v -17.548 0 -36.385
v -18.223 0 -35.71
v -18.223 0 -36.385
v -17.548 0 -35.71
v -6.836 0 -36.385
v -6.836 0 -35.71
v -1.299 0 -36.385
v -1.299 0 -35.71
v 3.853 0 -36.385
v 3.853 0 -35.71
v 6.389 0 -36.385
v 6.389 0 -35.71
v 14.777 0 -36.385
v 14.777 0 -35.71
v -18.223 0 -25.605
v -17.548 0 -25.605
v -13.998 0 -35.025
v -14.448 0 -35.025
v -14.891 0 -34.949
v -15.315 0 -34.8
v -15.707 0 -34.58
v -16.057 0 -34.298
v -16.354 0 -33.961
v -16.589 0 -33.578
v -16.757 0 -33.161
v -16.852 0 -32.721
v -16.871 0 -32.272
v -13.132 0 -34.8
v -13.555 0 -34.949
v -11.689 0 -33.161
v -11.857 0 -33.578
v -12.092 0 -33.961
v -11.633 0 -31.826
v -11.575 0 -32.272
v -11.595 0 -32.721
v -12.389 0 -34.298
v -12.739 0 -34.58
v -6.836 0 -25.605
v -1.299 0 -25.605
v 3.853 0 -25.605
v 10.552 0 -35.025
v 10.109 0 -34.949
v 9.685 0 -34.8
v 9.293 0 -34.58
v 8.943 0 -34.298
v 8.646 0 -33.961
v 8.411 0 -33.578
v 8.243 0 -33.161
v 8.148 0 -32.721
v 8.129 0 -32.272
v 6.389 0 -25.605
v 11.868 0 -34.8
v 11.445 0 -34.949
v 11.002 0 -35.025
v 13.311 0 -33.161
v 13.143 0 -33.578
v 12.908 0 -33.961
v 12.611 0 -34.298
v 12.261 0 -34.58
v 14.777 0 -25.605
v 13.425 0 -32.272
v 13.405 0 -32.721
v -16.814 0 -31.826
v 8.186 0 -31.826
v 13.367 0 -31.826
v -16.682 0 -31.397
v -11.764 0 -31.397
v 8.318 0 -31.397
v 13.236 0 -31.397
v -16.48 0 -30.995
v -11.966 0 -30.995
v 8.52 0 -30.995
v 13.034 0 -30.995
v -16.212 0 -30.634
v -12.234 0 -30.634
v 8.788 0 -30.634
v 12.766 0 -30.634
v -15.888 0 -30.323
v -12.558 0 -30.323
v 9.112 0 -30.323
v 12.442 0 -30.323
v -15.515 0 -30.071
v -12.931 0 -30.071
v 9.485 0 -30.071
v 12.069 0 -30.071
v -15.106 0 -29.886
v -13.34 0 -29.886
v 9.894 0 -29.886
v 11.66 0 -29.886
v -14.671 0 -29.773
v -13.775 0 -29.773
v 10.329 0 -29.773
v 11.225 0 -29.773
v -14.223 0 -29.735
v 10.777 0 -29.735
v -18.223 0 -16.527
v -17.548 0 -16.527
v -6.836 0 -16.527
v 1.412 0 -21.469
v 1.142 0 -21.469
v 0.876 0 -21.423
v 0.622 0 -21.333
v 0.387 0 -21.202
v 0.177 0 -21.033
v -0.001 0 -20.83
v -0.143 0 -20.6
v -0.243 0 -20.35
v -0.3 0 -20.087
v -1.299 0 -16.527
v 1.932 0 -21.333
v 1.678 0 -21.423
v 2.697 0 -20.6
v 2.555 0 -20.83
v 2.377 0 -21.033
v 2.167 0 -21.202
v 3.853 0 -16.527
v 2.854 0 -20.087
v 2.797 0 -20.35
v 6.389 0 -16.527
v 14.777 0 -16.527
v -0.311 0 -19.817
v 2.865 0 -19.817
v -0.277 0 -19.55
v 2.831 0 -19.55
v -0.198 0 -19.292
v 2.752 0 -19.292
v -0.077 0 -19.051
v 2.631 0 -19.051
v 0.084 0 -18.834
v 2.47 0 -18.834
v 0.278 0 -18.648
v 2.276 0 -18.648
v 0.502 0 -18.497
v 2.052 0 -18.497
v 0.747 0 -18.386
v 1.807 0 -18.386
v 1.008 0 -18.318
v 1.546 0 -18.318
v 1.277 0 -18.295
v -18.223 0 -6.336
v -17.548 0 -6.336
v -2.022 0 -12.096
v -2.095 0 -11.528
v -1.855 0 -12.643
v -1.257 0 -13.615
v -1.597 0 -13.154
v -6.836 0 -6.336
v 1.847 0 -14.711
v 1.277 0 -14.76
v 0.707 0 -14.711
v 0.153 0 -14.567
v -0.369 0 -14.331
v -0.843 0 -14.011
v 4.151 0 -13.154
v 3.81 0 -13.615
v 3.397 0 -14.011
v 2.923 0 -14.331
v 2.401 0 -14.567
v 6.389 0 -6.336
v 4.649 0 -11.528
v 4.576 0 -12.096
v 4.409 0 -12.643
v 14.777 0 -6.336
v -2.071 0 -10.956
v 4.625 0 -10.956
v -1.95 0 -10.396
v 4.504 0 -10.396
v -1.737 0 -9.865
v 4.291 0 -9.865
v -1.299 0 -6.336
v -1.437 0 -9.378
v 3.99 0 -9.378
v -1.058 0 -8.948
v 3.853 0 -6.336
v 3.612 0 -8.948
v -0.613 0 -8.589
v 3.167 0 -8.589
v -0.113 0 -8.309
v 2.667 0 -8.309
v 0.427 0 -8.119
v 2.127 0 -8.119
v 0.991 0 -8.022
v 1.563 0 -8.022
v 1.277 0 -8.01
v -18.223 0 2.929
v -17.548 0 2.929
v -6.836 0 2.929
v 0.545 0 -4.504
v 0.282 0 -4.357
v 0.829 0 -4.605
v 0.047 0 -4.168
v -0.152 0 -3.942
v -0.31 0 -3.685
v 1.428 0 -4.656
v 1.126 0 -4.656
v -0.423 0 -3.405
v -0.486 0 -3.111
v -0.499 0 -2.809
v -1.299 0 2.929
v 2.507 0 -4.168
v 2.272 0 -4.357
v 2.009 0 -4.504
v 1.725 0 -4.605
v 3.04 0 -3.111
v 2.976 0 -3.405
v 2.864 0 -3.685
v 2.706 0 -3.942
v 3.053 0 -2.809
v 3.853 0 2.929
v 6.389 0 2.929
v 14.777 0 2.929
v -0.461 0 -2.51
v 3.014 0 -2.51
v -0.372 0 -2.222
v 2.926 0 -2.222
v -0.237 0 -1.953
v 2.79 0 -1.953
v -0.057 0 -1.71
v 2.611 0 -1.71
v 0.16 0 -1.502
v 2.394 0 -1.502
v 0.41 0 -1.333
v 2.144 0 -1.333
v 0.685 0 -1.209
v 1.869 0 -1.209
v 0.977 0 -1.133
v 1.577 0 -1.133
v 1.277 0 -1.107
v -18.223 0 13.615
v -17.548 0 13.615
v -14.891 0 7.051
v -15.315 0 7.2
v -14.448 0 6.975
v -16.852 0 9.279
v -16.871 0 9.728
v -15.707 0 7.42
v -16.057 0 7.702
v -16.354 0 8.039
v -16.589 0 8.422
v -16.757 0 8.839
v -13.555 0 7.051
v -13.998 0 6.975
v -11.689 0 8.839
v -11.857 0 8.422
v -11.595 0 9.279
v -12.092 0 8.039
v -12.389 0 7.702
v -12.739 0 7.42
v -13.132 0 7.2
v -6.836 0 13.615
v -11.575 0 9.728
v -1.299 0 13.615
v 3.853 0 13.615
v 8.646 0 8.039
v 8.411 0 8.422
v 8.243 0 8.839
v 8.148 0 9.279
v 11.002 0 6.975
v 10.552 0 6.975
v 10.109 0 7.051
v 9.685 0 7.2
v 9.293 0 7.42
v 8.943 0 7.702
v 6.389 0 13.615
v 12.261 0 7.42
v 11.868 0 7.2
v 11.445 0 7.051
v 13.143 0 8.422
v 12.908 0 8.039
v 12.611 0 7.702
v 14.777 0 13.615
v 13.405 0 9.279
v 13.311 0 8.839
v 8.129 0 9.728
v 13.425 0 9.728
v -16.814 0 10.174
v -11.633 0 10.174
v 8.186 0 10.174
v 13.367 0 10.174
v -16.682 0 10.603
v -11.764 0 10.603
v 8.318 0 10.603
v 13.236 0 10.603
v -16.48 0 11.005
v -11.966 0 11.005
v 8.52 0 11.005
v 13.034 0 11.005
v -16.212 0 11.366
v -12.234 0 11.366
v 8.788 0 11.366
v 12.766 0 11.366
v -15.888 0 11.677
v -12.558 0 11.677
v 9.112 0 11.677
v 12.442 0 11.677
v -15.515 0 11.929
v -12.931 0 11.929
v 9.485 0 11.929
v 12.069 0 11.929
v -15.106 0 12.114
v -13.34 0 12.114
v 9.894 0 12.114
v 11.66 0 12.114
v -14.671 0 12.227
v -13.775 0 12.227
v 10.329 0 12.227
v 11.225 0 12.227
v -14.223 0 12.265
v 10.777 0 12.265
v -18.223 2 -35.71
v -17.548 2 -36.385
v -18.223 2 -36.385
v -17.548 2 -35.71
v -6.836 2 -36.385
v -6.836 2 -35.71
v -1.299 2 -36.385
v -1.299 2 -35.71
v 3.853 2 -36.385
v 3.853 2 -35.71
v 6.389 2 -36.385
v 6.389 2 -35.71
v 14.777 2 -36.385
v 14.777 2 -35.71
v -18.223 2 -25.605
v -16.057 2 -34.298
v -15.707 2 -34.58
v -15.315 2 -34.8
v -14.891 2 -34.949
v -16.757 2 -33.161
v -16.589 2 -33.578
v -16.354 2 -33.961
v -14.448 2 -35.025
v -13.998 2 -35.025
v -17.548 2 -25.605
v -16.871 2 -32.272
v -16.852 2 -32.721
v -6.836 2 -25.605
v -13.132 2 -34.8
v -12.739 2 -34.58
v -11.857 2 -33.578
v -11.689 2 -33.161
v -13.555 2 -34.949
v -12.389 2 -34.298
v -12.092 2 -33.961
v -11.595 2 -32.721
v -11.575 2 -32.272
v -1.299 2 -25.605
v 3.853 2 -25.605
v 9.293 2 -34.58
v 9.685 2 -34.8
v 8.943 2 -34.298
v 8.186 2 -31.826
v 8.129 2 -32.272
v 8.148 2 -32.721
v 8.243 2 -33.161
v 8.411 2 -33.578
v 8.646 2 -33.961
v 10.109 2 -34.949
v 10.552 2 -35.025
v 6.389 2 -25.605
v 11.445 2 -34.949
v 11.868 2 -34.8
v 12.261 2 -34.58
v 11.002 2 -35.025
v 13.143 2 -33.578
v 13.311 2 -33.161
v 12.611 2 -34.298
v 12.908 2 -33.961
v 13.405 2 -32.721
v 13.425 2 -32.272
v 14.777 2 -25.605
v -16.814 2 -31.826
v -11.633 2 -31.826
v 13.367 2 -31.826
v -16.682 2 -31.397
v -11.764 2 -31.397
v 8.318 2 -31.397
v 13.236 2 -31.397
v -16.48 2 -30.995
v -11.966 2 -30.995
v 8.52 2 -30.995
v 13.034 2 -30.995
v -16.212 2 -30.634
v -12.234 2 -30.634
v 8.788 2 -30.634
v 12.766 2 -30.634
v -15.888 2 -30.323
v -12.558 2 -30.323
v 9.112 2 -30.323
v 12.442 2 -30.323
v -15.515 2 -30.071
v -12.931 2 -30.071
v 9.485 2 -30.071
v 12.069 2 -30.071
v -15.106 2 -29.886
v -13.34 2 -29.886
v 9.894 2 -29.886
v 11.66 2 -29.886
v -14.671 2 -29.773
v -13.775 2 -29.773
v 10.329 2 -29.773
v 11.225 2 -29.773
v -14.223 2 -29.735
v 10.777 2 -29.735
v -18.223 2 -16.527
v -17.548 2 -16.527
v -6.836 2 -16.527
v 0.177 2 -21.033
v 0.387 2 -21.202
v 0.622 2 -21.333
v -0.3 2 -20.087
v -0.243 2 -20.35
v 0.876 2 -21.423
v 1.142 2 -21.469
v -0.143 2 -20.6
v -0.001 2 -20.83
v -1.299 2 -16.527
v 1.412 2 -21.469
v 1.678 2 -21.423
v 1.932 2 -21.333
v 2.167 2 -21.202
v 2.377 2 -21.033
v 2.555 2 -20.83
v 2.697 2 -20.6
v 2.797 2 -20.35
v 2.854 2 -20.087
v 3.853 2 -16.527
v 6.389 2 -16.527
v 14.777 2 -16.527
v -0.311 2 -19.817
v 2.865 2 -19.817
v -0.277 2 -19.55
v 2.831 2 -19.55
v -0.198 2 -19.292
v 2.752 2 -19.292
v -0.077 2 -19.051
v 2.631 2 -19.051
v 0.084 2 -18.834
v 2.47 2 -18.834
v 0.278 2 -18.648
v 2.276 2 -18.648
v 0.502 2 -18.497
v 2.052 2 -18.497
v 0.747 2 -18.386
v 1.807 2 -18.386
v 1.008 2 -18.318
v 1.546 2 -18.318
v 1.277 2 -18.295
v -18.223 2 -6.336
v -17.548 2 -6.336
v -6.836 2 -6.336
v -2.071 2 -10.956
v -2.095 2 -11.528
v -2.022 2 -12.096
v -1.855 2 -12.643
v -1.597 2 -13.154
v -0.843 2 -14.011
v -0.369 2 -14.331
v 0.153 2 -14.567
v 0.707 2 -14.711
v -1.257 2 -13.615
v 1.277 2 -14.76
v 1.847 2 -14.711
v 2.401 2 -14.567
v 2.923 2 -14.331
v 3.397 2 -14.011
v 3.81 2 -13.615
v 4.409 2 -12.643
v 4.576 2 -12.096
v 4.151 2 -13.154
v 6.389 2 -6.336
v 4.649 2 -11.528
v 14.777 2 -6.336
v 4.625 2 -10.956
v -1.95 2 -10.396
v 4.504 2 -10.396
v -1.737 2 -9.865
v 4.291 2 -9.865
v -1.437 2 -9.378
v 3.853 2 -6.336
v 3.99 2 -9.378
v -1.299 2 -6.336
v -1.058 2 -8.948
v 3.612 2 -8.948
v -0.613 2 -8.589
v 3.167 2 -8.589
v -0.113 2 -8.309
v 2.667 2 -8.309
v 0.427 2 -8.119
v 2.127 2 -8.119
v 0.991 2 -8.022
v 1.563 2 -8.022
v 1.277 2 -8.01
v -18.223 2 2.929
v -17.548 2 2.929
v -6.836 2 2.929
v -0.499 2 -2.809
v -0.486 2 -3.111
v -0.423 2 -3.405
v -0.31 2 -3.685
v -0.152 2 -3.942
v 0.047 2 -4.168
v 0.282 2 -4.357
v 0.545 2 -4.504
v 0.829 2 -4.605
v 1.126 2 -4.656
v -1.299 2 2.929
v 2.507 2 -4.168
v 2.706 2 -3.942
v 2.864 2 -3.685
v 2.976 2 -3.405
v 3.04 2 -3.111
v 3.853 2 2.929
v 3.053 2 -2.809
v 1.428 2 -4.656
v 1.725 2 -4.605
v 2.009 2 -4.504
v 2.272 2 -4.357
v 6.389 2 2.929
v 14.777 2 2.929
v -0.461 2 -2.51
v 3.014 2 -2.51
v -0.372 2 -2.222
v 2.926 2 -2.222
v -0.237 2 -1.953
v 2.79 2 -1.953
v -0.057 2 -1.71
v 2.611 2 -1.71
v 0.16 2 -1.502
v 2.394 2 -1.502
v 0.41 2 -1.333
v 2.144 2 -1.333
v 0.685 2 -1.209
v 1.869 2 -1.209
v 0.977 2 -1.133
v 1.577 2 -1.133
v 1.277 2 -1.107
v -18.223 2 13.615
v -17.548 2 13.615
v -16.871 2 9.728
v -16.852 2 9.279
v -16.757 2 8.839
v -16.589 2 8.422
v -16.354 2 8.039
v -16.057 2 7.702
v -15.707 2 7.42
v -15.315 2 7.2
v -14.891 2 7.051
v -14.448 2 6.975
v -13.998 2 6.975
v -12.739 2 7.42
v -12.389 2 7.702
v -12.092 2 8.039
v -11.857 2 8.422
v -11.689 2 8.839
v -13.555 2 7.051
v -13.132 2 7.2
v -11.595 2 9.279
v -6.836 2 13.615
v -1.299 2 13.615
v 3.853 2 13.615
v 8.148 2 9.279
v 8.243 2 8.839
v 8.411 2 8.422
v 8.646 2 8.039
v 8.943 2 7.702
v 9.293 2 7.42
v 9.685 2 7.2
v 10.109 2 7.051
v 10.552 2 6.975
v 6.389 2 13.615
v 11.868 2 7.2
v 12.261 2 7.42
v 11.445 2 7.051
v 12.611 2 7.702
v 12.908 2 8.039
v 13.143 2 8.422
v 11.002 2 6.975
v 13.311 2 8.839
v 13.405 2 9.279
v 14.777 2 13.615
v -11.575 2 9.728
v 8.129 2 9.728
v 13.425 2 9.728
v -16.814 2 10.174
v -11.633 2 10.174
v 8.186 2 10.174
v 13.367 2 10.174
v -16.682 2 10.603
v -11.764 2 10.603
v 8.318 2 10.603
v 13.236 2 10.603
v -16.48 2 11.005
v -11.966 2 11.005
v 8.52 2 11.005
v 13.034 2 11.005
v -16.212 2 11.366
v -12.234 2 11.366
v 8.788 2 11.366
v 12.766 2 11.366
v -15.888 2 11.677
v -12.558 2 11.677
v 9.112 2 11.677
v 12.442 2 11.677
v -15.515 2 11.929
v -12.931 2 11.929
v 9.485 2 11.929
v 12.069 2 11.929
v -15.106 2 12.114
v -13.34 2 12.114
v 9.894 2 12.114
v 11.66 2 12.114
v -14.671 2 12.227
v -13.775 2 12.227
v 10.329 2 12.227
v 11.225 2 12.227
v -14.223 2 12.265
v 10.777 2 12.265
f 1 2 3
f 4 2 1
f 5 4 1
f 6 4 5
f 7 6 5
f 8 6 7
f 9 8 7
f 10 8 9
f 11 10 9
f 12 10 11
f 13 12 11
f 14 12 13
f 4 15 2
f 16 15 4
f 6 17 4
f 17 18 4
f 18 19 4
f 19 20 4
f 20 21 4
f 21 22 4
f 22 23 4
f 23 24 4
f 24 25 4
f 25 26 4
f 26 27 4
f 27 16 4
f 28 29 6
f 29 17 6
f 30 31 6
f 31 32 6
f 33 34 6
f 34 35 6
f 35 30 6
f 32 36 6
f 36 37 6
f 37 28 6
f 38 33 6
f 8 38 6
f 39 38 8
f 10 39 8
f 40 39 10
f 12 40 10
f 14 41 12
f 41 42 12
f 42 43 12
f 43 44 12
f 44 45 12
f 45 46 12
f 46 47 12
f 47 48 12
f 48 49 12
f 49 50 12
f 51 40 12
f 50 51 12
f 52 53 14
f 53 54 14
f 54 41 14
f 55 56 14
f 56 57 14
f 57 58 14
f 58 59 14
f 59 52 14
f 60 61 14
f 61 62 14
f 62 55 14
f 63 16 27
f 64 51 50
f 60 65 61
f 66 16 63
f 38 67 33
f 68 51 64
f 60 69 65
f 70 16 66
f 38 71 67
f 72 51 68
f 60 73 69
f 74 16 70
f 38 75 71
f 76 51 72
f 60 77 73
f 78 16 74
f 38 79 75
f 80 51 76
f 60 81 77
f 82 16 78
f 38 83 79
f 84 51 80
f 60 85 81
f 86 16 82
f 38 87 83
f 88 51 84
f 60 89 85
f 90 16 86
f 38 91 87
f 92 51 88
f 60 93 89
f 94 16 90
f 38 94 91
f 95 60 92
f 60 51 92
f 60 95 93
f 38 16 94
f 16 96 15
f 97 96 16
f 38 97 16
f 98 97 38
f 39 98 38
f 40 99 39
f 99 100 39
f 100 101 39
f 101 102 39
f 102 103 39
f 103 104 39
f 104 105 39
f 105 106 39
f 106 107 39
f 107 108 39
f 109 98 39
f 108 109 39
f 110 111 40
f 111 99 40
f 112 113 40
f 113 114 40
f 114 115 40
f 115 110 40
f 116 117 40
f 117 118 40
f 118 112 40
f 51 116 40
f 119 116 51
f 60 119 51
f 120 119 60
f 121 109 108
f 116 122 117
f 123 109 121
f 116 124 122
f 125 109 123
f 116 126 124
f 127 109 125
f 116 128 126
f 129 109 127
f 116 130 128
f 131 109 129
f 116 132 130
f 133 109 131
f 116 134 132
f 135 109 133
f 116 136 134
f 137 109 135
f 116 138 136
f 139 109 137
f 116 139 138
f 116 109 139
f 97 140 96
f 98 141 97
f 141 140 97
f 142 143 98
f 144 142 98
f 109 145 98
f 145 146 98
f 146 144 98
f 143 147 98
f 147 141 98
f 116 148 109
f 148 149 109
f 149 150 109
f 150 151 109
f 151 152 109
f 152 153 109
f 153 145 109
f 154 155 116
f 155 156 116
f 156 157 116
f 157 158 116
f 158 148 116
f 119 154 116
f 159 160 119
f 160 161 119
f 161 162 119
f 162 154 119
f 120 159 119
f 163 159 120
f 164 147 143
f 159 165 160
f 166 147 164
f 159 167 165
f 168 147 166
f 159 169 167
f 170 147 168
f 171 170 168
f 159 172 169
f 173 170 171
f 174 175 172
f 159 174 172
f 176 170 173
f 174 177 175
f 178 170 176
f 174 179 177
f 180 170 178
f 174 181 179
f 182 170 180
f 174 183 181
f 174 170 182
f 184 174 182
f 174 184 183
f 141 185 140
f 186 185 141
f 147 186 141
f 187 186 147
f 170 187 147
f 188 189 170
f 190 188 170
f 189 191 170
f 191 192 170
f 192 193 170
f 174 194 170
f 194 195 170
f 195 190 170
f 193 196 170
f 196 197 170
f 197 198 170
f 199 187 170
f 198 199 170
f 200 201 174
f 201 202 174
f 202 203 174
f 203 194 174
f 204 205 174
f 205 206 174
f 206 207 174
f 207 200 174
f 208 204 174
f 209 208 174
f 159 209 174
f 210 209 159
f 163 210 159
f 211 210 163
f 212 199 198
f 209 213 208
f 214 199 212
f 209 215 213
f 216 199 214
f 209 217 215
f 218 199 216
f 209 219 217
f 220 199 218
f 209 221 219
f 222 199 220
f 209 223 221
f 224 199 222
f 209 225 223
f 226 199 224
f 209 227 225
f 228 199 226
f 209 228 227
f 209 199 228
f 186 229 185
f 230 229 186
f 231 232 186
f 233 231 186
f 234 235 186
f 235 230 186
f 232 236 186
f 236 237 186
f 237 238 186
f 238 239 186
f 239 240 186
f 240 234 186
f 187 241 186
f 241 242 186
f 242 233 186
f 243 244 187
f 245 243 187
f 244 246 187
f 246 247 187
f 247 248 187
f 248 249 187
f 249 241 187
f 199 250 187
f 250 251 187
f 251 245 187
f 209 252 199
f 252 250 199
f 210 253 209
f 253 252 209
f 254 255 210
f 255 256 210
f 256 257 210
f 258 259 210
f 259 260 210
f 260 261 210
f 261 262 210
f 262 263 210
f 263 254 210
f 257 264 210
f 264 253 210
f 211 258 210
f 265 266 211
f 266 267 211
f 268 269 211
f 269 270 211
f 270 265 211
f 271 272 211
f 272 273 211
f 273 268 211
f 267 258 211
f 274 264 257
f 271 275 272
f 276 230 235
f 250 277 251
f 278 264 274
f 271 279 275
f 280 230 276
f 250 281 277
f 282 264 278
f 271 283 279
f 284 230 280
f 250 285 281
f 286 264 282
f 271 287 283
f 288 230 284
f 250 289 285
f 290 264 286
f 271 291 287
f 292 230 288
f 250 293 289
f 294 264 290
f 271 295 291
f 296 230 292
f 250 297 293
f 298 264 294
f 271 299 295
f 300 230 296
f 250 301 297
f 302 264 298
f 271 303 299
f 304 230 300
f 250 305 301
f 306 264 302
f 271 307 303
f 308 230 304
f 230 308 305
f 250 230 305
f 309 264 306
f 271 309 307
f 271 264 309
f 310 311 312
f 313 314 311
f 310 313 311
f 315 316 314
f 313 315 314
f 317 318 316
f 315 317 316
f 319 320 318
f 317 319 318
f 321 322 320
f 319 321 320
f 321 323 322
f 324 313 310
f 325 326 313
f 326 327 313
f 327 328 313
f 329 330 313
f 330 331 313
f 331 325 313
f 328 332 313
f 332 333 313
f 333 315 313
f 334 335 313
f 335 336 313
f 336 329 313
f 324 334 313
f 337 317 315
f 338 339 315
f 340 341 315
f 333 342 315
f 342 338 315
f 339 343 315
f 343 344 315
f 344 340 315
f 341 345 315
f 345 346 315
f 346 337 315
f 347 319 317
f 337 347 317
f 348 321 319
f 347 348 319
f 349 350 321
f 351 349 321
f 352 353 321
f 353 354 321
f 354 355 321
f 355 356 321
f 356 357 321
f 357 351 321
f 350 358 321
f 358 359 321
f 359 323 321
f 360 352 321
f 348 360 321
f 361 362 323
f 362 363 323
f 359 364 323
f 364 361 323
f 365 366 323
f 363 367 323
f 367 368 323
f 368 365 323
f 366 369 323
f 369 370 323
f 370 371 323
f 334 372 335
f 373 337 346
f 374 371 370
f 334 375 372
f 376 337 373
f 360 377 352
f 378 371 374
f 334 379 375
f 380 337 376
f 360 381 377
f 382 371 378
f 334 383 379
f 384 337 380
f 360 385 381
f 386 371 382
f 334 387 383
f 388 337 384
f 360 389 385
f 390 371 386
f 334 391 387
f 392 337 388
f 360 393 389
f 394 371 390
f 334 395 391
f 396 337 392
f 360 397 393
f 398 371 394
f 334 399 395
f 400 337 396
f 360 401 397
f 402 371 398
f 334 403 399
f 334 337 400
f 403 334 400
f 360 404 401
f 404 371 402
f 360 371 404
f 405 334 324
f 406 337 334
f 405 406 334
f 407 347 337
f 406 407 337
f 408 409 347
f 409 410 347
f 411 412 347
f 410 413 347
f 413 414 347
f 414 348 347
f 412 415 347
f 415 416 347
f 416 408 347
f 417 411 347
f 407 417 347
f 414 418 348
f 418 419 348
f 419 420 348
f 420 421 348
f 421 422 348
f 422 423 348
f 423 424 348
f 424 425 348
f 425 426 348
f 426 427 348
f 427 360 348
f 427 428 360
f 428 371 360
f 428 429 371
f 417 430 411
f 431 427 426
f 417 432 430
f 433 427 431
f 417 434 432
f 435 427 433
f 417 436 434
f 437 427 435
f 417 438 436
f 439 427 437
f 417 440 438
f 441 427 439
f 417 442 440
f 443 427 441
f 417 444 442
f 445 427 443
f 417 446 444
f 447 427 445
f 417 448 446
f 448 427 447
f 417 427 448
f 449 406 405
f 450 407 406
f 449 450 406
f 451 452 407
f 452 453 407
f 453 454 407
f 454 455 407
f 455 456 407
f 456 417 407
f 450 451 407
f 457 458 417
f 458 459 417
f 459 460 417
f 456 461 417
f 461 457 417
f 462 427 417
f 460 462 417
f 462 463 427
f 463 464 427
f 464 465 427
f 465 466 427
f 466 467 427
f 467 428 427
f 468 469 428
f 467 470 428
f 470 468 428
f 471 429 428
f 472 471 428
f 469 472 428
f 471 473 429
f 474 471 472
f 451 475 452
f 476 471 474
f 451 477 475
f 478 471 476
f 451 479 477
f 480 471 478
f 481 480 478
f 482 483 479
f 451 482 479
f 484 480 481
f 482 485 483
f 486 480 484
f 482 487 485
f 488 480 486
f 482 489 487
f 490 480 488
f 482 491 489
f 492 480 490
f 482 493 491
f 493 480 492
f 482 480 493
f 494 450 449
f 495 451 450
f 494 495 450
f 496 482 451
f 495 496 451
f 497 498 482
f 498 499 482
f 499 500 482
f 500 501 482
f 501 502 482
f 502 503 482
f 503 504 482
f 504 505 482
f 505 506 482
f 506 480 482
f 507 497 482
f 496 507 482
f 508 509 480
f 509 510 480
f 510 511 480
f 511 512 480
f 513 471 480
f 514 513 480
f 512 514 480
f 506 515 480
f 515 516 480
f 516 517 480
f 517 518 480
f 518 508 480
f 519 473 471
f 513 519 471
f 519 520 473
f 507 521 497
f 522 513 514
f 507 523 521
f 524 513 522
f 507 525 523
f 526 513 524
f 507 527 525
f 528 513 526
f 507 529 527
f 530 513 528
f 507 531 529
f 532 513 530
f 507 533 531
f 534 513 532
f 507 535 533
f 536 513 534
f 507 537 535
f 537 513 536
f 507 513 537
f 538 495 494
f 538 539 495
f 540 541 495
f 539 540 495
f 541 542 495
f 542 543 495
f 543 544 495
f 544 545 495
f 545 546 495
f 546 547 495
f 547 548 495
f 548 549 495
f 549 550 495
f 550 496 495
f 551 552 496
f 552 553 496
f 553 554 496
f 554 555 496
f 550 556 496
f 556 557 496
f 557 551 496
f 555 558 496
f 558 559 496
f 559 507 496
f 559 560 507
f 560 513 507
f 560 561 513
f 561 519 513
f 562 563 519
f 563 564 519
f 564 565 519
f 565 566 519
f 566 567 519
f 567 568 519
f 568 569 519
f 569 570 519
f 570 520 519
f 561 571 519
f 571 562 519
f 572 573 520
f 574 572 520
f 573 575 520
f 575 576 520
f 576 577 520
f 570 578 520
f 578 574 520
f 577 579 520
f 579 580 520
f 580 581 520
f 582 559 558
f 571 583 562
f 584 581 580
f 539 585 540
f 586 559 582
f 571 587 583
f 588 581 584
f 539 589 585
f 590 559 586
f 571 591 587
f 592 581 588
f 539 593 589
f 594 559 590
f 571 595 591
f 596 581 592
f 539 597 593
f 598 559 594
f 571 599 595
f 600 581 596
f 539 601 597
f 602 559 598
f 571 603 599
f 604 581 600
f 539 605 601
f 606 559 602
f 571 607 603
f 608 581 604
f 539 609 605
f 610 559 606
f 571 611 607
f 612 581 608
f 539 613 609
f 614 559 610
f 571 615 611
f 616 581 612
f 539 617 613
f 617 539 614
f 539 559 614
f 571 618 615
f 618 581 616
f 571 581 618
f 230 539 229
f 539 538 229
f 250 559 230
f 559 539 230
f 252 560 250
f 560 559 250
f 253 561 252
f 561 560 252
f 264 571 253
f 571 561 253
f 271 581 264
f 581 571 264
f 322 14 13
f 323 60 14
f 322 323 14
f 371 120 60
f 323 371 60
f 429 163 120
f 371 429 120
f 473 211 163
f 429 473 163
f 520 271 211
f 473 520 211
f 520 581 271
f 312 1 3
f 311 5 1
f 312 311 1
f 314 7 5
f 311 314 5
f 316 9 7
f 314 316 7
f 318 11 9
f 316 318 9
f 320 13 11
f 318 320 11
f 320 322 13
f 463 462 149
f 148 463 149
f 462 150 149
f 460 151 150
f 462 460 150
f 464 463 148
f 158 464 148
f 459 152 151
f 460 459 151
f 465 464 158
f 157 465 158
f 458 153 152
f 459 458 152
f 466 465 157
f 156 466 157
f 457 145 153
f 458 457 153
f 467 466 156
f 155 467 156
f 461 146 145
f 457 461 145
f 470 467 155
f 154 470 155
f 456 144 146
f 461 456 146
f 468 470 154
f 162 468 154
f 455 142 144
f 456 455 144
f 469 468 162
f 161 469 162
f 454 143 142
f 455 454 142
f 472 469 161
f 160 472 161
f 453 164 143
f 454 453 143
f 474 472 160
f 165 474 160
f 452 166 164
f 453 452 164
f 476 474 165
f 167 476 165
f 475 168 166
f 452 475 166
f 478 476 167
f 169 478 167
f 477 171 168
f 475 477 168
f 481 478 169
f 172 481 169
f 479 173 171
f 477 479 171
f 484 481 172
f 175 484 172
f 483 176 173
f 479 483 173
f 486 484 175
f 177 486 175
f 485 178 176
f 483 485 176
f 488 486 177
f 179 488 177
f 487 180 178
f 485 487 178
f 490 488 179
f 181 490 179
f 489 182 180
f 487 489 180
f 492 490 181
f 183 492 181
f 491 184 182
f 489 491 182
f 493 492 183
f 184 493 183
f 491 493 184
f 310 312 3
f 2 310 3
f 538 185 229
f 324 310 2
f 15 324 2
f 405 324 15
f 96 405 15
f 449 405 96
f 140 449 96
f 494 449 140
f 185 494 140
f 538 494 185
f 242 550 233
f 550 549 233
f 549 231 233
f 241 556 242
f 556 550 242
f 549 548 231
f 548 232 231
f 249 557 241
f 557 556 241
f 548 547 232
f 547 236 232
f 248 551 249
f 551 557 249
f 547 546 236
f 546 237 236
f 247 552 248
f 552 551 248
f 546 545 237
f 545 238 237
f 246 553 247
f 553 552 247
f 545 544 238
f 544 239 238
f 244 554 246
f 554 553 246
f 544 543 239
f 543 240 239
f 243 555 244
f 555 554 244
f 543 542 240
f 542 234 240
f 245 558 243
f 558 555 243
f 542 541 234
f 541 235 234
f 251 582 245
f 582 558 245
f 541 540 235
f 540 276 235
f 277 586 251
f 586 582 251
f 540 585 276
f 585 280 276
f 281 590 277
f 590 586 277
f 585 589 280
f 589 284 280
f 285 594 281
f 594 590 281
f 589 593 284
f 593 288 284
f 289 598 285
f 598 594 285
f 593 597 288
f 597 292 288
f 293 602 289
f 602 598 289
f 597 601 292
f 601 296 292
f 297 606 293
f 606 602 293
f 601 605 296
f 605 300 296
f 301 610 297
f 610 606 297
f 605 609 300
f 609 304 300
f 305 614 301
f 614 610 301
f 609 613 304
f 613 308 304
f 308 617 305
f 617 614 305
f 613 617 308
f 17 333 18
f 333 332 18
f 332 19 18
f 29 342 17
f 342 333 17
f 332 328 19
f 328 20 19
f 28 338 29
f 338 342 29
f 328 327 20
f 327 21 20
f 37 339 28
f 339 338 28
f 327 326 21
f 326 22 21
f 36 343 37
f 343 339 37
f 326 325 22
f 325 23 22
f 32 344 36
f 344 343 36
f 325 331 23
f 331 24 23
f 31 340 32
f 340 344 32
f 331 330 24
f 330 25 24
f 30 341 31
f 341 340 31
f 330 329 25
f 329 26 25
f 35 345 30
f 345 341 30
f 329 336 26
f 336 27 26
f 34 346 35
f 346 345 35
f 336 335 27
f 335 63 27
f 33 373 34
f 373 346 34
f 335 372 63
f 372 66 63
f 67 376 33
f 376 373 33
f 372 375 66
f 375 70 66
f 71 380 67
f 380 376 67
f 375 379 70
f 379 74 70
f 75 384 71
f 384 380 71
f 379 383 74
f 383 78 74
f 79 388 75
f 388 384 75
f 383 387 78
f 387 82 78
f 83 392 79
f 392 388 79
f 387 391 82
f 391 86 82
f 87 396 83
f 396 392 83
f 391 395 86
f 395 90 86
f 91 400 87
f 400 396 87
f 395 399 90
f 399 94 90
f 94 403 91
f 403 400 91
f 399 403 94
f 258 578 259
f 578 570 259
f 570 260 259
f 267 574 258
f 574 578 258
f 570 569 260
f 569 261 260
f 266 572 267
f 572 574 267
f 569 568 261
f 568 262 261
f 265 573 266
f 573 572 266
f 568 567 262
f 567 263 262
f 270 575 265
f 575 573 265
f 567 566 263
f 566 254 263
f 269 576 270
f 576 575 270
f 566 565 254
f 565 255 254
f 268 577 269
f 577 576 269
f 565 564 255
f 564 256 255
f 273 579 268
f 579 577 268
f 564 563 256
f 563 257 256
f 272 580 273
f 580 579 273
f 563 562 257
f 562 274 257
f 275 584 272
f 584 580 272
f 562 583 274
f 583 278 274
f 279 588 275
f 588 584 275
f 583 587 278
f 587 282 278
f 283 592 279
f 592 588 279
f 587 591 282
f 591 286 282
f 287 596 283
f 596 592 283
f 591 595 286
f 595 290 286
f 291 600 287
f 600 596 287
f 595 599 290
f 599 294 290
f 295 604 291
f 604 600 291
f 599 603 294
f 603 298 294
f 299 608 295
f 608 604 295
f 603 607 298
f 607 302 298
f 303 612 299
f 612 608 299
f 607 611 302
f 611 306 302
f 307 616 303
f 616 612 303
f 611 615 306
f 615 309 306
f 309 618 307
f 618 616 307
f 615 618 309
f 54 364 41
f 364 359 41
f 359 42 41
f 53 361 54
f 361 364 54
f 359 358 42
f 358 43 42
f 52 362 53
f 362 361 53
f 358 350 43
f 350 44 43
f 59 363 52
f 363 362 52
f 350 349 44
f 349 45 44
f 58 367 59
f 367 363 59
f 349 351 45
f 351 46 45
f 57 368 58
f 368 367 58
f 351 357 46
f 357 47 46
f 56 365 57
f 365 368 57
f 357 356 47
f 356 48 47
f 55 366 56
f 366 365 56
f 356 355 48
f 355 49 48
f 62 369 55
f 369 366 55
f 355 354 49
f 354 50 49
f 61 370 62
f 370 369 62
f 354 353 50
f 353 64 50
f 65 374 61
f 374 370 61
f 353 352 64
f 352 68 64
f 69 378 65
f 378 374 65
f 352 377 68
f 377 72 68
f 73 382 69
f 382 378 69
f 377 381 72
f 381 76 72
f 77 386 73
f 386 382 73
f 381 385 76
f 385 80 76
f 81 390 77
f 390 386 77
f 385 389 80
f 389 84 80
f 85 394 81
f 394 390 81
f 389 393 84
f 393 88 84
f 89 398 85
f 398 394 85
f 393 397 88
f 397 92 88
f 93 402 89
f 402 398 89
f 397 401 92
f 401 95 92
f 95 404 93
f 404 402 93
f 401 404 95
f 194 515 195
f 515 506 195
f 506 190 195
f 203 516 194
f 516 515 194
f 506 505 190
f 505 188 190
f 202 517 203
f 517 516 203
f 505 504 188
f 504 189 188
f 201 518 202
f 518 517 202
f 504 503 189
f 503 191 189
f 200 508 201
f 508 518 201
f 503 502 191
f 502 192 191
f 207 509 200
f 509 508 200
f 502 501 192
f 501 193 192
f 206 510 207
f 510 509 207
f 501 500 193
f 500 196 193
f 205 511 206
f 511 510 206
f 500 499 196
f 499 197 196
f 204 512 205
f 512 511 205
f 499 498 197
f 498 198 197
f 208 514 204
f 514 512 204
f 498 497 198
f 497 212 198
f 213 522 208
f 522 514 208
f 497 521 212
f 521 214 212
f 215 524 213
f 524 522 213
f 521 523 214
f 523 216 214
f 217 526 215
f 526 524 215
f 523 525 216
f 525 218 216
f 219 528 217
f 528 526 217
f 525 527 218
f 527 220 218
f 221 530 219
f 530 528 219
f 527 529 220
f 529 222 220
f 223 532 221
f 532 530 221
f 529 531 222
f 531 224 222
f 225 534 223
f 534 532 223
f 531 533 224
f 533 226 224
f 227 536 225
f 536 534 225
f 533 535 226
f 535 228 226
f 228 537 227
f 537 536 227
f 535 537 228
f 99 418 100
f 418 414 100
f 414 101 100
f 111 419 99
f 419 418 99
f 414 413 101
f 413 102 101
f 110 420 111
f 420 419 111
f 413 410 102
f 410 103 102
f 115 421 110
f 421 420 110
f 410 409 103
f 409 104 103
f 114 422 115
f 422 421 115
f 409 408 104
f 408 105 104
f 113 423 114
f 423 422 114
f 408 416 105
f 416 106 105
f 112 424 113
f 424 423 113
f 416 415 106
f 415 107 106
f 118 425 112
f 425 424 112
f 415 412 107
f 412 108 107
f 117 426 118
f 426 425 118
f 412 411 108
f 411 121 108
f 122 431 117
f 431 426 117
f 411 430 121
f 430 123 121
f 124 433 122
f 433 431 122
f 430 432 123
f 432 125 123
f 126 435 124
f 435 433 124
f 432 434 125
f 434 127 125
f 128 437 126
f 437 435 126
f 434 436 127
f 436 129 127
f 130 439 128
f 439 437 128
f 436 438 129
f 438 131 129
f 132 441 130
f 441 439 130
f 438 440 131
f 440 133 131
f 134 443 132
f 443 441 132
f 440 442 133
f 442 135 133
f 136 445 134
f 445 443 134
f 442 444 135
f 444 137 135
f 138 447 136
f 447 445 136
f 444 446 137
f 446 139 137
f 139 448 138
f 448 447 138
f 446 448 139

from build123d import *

# Parameters (mm, degrees)
SKETCH1_W           = 25
SKETCH1_H           = 50
SKETCH1_R           = 3.375
BOSS_EXTRUDE1_DEPTH = 2
SKETCH2_W           = 50
SKETCH2_H           = 2
BOSS_EXTRUDE2_DEPTH = 8
SKETCH3_W           = 8
SKETCH3_H           = 50
BOSS_EXTRUDE3_DEPTH = 42
SKETCH4_R           = 2.65
CUT_EXTRUDE1_DEPTH  = 3.3
SKETCH5_R           = 5.802370205
CUT_EXTRUDE2_DEPTH  = 9
FILLET2_R           = 1
SKETCH6_R           = 12.7
BOSS_EXTRUDE4_DEPTH = 2
FILLET4_R           = 1
SKETCH8_R           = 1.589780168
SKETCH8_R_2         = 1.777428262
CUT_EXTRUDE3_DEPTH  = 10
SKETCH9_W           = 8
SKETCH9_H           = 42
CUT_EXTRUDE4_DEPTH  = 68.79439129
SKETCH10_W          = 33.517939775
SKETCH10_H          = 7.212330843
CUT_EXTRUDE5_DEPTH  = 55


with BuildPart() as part:
    # Sketch1 → Boss-Extrude1 (new body)
    with BuildSketch(Plane(origin=(0, 0, 0), x_dir=(1, 0, 0), z_dir=(0, 1, 0))):
        with Locations((2.276951673, 11.384758364)):
            Rectangle(SKETCH1_W, SKETCH1_H)
        with Locations(Location((1.276951673, 11.384758364, 0), (0, 0, 270))):
            Circle(SKETCH1_R, mode=Mode.SUBTRACT)
    extrude(amount=BOSS_EXTRUDE1_DEPTH)

    # Sketch2 → Boss-Extrude2 (add)
    with BuildSketch(Plane.ZY.offset(10.223048327)):
        with Locations((-11.384758364, 1)):
            Rectangle(SKETCH2_W, SKETCH2_H)
    extrude(amount=BOSS_EXTRUDE2_DEPTH)

    # Sketch3 → Boss-Extrude3 (add)
    with BuildSketch(Plane.XZ):
        with Locations((-14.223048327, -11.384758364)):
            Rectangle(SKETCH3_W, SKETCH3_H)
    extrude(amount=BOSS_EXTRUDE3_DEPTH)

    # Sketch4 → Cut-Extrude1 (cut)
    with BuildSketch(Plane(origin=(0, 2, 0), x_dir=(1, 0, 0), z_dir=(0, 1, 0))):
        with Locations(Location((-14.223048327, 32.384758364, 0), (0, 0, 270))):
            Circle(SKETCH4_R)
        with Locations(Location((-14.223048327, -9.615241636, 0), (0, 0, 270))):
            Circle(SKETCH4_R)
    cut_extrude1 = extrude(amount=-CUT_EXTRUDE1_DEPTH, mode=Mode.SUBTRACT)

    # Mirror1: Cut-Extrude1 across plane
    add(cut_extrude1.mirror(Plane.ZX.offset(-20)), mode=Mode.SUBTRACT)

    # Sketch5 → Cut-Extrude2 (cut)
    with BuildSketch(Plane.ZY.offset(18.223048327)):
        with Locations((-11.836279124, -21)):
            Circle(SKETCH5_R)
    extrude(amount=-CUT_EXTRUDE2_DEPTH, mode=Mode.SUBTRACT)

    # Fillet2
    fillet2_edges = [part.edges().sort_by_distance(p)[0] for p in [
        (-10.223048327, -21, -17.638649329),
    ]]
    fillet(fillet2_edges, radius=FILLET2_R)

    # Mirror2: Cut-Extrude1 across plane
    add(cut_extrude1.mirror(Plane.ZY.offset(1.723048327)), mode=Mode.SUBTRACT)

    # Sketch6 → Boss-Extrude4 (add)
    with BuildSketch(Plane(origin=(0, 2, 0), x_dir=(1, 0, 0), z_dir=(0, 1, 0))):
        with BuildLine():
            Line((14.776951673, 5.567542535), (14.776951673, 17.201974193))
            ThreePointArc((14.776951673, 17.201974193), (-13.423048327, 11.384758364), (14.776951673, 5.567542535))
        make_face()
        with Locations(Location((1.276951673, 11.384758364, 0), (0, 0, 270))):
            Circle(SKETCH6_R, mode=Mode.SUBTRACT)
    extrude(amount=BOSS_EXTRUDE4_DEPTH)

    # Fillet4
    # the kernel refuses this fillet: 1 mm, written as the material it takes off along each edge
    with BuildSketch(Plane(origin=(14.776951673, 4, -3.067542535), x_dir=(0, -1, 0), z_dir=(0, 0, -1))) as fillet4_piece_1:
        with BuildLine():
            CenterArc((FILLET4_R, FILLET4_R), FILLET4_R, 180, 90)
            Line((0, FILLET4_R), (0, 0))
            Line((0, 0), (FILLET4_R, 0))
        make_face()
    extrude(amount=16.634431658, mode=Mode.SUBTRACT)

    # Sketch8 → Cut-Extrude3 (cut)
    with BuildSketch(Plane(origin=(0, 2, 0), x_dir=(1, 0, 0), z_dir=(0, 1, 0))):
        with Locations(Location((1.276951673, 19.884758364, 0), (0, 0, 270))):
            Circle(SKETCH8_R)
        with Locations(Location((1.276951673, 2.884758364, 0), (0, 0, 270))):
            Circle(SKETCH8_R_2)
    extrude(amount=-CUT_EXTRUDE3_DEPTH, mode=Mode.SUBTRACT)

    # Sketch9 → Cut-Extrude4 (cut, through all)
    with BuildSketch(Plane.XY.offset(13.615241636)):
        with Locations((-14.223048327, -21)):
            Rectangle(SKETCH9_W, SKETCH9_H)
    extrude(amount=-CUT_EXTRUDE4_DEPTH, mode=Mode.SUBTRACT)

    # Sketch10 → Cut-Extrude5 (cut)
    with BuildSketch(Plane.XY.offset(13.615241636)):
        with Locations((-1.464078439, 5.606165422)):
            Rectangle(SKETCH10_W, SKETCH10_H)
    extrude(amount=-CUT_EXTRUDE5_DEPTH, mode=Mode.SUBTRACT)


solid = part.part
